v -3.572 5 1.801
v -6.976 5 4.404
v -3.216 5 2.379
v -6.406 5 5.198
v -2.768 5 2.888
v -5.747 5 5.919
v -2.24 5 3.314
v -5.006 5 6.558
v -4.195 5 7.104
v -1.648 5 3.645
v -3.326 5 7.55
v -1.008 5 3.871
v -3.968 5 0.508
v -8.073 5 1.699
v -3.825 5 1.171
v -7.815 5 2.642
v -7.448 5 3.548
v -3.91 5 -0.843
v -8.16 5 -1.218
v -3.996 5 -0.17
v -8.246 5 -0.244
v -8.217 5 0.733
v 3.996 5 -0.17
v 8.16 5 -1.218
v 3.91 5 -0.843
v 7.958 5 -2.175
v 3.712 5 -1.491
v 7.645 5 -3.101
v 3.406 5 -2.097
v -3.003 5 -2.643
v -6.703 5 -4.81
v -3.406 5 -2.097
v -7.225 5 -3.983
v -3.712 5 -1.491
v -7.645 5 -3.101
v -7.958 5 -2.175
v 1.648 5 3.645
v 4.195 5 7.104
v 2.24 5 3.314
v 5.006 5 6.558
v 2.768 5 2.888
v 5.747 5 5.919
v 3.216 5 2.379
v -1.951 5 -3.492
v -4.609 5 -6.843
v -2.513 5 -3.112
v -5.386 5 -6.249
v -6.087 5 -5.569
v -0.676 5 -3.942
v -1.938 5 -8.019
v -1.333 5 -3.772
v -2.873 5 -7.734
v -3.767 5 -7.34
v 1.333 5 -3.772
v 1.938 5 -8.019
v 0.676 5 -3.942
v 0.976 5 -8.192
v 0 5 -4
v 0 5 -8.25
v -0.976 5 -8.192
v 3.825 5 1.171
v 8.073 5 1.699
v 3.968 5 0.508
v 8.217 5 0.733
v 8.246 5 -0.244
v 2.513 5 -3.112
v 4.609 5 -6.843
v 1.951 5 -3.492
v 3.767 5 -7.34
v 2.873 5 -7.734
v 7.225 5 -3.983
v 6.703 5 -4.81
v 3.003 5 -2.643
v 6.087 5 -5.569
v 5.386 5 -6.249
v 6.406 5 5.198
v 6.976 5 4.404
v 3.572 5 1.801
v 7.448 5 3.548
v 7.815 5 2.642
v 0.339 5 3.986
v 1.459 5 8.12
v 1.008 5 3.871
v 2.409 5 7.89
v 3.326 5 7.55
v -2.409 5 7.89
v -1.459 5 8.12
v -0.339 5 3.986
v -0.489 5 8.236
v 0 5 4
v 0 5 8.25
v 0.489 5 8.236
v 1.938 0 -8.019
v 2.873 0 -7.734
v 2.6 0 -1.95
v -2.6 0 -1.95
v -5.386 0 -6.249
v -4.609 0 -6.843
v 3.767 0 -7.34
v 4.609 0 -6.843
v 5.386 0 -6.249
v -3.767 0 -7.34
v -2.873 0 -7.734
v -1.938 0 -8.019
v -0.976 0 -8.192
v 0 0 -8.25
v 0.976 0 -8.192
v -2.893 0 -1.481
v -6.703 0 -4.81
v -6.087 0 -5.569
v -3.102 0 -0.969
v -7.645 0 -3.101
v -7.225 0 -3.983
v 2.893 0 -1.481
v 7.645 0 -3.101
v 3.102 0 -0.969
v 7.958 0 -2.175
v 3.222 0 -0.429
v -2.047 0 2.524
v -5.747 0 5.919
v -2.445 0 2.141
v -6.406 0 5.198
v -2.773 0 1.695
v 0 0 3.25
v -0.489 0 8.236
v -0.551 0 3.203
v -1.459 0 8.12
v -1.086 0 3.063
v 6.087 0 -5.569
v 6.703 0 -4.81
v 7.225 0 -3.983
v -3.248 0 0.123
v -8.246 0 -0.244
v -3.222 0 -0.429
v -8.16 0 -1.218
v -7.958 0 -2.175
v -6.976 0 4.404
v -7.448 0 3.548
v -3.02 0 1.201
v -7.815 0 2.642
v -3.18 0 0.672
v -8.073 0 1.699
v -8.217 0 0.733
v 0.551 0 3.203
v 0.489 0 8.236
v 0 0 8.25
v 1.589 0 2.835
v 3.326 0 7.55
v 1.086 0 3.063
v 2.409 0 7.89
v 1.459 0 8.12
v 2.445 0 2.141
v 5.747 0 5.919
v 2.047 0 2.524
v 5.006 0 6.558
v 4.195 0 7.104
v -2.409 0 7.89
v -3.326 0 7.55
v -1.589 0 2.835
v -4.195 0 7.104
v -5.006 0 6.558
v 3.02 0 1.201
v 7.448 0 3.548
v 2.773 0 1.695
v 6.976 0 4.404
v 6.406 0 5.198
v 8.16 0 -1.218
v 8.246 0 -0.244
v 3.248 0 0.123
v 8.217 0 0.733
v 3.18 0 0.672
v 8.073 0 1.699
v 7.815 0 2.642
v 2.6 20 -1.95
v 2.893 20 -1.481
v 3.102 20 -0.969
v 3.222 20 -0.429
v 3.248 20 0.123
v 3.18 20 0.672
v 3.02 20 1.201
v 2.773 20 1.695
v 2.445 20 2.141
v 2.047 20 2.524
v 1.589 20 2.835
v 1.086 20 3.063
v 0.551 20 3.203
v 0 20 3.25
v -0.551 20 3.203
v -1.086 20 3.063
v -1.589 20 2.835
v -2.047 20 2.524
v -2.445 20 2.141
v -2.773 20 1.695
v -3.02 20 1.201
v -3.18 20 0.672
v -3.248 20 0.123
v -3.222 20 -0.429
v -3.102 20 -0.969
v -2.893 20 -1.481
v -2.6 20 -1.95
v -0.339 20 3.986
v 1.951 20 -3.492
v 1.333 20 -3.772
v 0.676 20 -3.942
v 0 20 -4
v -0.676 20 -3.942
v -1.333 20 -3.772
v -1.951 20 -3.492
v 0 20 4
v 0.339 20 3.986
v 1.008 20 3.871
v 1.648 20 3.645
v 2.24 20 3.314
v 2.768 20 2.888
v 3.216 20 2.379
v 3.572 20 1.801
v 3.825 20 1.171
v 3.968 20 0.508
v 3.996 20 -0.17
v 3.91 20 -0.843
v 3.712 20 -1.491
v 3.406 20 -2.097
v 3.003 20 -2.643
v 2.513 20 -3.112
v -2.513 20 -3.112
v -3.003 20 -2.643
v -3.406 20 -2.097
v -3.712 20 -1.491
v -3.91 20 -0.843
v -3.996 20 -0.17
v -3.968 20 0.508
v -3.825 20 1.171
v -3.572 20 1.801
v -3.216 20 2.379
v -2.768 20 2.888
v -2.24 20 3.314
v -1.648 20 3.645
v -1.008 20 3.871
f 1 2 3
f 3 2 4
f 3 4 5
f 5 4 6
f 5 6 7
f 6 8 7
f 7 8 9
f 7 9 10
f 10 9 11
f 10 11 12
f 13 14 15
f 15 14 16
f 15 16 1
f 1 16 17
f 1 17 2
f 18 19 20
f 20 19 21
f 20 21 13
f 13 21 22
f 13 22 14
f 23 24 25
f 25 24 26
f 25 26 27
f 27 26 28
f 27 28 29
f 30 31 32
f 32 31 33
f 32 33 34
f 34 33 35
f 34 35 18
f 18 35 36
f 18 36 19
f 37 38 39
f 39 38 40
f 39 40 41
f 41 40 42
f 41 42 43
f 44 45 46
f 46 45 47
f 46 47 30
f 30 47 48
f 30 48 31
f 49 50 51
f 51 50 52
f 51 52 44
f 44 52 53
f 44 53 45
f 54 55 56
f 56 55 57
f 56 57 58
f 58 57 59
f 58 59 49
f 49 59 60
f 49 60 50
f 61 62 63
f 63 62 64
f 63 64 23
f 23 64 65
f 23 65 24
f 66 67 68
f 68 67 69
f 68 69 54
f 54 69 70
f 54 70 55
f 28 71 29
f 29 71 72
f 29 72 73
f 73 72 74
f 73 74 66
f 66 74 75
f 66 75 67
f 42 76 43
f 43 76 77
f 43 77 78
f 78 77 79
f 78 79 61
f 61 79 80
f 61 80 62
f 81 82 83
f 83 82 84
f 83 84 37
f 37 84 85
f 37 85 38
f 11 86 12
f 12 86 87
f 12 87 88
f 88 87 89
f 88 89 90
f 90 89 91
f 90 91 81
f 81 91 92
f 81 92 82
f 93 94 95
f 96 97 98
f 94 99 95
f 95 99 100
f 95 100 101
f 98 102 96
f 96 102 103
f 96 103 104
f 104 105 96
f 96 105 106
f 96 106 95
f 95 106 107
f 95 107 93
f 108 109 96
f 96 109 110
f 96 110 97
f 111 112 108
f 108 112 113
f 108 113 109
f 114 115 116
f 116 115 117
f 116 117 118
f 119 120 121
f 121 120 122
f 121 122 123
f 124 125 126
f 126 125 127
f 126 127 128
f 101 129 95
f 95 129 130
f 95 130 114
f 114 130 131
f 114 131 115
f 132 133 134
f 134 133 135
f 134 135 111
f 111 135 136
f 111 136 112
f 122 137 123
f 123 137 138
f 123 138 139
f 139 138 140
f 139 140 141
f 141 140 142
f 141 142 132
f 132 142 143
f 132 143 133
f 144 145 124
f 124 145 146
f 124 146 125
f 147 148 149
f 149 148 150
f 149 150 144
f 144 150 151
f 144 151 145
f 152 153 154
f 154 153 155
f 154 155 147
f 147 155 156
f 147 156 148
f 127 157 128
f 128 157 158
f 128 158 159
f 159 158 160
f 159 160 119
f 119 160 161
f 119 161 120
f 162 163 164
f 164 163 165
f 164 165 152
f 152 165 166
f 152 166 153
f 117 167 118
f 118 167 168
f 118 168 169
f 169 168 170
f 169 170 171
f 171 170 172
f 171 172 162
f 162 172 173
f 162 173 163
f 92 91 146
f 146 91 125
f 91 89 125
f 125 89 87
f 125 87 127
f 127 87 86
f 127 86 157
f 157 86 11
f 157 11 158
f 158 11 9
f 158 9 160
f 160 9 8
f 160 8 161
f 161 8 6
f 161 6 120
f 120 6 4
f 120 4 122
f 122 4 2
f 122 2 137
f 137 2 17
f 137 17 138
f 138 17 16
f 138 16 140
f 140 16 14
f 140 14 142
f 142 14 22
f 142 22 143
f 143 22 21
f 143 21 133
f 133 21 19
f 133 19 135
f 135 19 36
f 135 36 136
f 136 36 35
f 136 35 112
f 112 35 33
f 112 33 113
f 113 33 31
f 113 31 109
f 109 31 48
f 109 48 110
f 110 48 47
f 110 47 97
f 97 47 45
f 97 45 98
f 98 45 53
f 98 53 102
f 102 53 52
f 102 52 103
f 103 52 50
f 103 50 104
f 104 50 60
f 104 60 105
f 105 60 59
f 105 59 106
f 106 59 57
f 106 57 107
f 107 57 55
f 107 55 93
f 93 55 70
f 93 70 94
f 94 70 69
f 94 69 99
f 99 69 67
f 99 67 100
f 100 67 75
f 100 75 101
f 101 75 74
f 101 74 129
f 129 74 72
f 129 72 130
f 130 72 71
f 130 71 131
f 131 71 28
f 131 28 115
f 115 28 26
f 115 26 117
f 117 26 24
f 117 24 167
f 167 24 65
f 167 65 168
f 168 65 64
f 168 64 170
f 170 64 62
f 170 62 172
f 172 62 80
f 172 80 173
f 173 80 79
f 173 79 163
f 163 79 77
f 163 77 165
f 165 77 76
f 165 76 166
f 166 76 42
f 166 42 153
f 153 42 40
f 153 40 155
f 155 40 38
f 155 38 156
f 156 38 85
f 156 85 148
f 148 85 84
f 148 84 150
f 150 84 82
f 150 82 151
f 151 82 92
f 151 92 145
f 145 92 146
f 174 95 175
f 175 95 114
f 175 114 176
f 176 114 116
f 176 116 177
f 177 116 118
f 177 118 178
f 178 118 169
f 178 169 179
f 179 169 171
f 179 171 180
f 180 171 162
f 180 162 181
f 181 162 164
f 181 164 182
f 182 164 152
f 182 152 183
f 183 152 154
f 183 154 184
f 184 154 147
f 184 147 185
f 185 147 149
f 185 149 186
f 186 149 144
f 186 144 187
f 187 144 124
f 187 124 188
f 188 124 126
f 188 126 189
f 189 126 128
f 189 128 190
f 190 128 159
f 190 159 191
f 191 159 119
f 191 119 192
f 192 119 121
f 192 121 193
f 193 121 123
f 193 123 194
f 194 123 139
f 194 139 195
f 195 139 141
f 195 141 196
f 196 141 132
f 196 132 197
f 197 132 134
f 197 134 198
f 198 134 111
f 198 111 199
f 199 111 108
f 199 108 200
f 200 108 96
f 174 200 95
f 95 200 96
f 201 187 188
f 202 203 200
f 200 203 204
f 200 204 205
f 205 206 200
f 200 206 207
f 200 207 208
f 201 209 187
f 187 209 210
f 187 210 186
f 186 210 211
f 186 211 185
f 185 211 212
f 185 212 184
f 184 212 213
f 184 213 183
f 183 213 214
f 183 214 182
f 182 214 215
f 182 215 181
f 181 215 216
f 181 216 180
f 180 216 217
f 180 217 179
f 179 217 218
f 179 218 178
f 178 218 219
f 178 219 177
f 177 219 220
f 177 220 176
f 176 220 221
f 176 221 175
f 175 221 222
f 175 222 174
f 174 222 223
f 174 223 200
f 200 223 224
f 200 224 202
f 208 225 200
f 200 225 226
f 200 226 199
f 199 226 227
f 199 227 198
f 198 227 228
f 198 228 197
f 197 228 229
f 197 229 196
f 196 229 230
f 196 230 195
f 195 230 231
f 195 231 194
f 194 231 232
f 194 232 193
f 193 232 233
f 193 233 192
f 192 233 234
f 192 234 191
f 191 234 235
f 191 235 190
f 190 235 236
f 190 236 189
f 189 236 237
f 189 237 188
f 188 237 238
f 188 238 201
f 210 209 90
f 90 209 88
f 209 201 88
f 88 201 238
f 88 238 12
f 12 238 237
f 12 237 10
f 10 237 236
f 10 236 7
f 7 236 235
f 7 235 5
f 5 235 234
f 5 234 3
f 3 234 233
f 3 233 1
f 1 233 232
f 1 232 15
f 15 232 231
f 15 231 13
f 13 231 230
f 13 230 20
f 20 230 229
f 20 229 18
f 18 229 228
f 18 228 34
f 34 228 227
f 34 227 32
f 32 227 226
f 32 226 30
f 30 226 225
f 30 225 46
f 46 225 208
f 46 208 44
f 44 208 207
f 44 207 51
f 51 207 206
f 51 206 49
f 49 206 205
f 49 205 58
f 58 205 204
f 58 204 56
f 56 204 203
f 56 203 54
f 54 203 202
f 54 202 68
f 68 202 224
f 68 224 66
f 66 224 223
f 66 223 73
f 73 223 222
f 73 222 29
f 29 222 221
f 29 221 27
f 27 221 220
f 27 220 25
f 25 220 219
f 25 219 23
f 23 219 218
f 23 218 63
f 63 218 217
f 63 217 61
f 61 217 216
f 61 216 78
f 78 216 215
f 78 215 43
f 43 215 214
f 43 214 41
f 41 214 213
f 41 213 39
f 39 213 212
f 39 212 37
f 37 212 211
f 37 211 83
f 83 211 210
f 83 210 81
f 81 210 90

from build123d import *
from build123d.topology import SkipClean

# Parameters (mm, degrees)
CROQUIS1_R              = 8.25
SALIENTE_EXTRUIR1_DEPTH = 5
CROQUIS2_R              = 4
SALIENTE_EXTRUIR2_DEPTH = 15


with BuildPart() as part:
    # Croquis1 → Saliente-Extruir1 (new body)
    with BuildSketch(Plane(origin=(0, 0, 0), x_dir=(1, 0, 0), z_dir=(0, 1, 0))):
        with Locations(Location((0, 0, 0), (0, 0, 270))):
            Circle(CROQUIS1_R)
        with BuildLine():
            Line((-2.6, 1.95), (2.6, 1.95))
            ThreePointArc((2.6, 1.95), (0, -3.25), (-2.6, 1.95))
        make_face(mode=Mode.SUBTRACT)
    extrude(amount=SALIENTE_EXTRUIR1_DEPTH)

    # Croquis2 → Saliente-Extruir2 (add)
    with SkipClean():  # the faces are left unmerged after this step: merging them gives an invalid solid
        with BuildSketch(Plane(origin=(0, 5, 0), x_dir=(1, 0, 0), z_dir=(0, 1, 0))):
            with Locations(Location((0, 0, 0), (0, 0, 270))):
                Circle(CROQUIS2_R)
            with BuildLine():
                Line((2.6, 1.95), (-2.6, 1.95))
                ThreePointArc((-2.6, 1.95), (0, -3.25), (2.6, 1.95))
            make_face(mode=Mode.SUBTRACT)
        extrude(amount=SALIENTE_EXTRUIR2_DEPTH)


solid = part.part
